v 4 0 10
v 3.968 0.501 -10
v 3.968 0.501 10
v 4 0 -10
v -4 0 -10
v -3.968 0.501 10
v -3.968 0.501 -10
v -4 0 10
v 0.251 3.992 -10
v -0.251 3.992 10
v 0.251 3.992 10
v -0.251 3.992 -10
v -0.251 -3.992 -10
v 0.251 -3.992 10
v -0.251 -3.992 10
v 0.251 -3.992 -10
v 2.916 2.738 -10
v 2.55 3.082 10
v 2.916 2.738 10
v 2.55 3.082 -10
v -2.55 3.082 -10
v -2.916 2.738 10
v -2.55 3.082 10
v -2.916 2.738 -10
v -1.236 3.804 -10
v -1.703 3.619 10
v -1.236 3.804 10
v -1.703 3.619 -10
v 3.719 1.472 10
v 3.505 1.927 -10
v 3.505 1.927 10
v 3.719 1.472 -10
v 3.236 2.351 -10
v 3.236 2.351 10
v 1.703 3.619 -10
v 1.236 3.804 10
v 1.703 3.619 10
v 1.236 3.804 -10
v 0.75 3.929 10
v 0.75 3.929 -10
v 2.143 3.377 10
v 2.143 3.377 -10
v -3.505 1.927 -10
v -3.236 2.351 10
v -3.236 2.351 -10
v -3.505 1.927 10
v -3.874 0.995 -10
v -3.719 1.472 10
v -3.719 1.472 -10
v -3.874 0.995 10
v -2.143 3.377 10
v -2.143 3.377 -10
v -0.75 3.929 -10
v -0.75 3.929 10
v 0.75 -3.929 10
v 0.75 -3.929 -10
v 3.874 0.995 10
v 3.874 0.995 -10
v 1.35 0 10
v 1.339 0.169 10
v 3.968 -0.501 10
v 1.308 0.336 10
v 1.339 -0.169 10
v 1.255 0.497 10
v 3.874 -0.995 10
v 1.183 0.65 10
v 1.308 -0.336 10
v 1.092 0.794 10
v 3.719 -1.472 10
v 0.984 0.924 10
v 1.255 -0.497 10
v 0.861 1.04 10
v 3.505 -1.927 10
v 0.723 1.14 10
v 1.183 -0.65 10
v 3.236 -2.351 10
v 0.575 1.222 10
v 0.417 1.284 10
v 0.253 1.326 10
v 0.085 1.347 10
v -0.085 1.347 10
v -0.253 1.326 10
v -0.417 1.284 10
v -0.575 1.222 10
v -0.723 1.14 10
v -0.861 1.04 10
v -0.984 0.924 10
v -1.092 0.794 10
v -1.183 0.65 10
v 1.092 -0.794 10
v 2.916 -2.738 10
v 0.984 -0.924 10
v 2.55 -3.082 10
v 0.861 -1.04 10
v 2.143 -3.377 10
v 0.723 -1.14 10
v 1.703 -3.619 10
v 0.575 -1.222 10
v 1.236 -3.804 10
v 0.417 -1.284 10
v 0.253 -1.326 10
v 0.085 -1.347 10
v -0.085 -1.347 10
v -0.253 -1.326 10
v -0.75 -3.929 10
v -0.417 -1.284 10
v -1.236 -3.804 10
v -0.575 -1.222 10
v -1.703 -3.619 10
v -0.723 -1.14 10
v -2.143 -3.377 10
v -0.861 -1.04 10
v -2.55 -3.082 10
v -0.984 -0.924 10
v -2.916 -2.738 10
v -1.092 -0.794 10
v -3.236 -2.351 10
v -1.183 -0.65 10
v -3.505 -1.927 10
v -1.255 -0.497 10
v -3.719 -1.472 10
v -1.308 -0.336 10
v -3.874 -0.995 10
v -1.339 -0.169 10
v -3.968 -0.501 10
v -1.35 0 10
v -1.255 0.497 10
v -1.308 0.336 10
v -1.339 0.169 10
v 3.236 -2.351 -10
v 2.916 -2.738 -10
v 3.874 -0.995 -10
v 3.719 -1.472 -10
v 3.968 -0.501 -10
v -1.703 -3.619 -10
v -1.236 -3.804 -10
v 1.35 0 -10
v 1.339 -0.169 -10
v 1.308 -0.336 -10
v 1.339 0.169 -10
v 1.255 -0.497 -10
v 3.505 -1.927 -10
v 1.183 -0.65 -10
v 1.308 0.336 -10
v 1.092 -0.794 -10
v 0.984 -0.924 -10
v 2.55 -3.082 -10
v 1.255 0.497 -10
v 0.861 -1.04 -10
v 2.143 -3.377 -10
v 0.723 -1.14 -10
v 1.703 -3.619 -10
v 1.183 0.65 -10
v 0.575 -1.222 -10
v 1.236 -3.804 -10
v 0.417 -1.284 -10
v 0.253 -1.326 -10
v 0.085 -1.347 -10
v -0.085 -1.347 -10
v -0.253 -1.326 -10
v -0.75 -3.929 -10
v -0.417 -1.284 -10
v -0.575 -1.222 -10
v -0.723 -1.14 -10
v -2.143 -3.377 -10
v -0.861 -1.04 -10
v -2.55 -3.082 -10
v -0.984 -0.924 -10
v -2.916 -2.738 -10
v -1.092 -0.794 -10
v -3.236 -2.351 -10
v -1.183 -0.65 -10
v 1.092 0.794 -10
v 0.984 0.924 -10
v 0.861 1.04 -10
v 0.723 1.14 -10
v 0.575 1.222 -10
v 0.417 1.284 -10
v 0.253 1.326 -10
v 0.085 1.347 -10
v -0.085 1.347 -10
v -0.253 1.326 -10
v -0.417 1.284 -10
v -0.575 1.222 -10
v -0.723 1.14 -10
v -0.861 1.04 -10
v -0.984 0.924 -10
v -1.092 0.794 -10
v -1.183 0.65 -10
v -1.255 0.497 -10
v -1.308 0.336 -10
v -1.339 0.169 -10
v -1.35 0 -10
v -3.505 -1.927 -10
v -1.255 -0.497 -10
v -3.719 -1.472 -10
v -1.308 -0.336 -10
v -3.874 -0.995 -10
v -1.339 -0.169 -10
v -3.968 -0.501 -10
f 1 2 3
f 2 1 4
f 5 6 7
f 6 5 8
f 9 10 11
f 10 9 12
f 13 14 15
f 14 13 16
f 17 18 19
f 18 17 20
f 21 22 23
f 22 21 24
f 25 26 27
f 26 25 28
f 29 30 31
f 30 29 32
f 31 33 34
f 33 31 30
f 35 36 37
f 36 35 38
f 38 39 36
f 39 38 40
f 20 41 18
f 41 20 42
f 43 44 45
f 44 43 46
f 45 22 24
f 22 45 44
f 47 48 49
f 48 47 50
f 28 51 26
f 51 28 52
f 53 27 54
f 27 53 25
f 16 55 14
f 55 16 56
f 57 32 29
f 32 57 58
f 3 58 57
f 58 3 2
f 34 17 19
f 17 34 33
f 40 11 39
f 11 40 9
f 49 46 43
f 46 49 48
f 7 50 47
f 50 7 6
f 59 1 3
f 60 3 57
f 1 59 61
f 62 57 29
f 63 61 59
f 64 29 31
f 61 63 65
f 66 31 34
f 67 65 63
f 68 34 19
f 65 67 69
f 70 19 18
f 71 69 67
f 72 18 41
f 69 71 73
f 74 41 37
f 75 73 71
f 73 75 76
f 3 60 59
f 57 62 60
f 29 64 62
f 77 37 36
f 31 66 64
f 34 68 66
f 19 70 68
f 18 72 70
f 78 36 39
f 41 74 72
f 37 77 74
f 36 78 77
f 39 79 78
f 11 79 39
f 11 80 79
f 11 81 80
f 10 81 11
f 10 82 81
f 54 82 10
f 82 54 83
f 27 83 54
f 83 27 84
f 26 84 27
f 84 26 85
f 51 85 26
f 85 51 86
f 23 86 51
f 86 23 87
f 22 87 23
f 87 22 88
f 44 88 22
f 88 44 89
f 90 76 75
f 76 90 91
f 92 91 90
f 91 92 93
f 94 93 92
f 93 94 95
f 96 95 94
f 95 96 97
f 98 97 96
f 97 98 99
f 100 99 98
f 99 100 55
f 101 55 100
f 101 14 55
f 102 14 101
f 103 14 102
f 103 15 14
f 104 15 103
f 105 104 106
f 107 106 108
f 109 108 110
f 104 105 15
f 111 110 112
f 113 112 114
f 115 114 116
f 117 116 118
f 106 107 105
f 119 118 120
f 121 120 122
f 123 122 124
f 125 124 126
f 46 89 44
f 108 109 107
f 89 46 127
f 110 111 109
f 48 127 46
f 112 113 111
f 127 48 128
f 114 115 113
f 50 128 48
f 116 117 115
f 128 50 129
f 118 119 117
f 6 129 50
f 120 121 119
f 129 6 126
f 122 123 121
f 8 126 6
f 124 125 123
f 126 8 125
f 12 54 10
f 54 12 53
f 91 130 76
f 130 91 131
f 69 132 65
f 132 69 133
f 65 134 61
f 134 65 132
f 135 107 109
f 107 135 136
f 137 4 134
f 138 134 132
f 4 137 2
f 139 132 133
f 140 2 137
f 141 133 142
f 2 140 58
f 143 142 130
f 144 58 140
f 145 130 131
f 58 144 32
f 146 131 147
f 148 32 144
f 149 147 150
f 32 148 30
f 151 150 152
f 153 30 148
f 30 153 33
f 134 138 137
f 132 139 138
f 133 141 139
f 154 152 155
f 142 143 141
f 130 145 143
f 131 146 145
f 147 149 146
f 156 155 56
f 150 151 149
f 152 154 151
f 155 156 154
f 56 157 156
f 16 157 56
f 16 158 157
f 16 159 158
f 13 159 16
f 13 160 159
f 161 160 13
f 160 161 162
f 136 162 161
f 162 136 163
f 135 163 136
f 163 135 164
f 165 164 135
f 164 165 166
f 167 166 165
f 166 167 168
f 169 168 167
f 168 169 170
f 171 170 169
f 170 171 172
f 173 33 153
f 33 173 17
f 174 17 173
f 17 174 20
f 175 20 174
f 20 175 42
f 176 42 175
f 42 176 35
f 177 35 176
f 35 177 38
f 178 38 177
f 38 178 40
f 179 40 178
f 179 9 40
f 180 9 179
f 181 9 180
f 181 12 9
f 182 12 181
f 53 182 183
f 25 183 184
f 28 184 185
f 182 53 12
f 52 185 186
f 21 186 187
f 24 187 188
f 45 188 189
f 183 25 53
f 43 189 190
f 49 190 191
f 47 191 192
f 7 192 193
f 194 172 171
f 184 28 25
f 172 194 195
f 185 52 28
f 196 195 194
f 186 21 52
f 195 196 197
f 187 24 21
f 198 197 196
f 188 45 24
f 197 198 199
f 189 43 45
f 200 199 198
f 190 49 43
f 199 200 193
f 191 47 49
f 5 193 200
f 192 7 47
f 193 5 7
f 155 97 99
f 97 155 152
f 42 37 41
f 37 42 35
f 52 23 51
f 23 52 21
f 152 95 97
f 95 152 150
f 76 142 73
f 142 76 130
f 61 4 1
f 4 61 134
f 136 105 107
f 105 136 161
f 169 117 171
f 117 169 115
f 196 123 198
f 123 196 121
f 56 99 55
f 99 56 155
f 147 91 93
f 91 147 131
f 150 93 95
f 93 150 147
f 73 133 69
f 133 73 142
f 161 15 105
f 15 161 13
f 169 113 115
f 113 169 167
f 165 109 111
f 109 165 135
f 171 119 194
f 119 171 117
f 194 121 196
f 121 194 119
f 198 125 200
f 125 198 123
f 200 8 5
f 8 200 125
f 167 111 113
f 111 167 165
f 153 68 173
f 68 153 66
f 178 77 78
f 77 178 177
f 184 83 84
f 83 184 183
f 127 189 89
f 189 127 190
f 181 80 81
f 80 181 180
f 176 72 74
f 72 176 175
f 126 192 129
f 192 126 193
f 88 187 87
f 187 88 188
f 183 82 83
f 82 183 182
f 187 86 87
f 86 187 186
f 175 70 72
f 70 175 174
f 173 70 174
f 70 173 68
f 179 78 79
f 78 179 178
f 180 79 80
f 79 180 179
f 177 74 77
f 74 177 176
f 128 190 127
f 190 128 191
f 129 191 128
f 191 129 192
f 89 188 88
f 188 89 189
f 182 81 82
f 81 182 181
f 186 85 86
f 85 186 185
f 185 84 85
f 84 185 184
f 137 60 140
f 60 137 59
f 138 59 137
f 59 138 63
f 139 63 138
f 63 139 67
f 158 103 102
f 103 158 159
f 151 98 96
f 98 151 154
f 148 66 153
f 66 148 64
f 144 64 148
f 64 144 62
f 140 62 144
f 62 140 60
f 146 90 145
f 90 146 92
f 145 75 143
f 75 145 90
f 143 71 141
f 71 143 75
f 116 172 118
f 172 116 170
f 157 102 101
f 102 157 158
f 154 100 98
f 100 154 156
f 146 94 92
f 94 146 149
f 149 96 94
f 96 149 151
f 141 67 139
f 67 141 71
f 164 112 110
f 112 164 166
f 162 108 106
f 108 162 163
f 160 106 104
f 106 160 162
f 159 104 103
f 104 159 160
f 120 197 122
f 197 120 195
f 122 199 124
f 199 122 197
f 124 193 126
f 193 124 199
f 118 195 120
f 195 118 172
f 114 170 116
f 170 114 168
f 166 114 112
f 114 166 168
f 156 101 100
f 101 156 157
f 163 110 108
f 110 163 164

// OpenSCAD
$fn = 50;


difference() {
	union() {
		translate(v = [0, 0, -10.0000000000]) {
			cylinder(h = 20, r = 4.0000000000);
		}
	}
	union() {
		translate(v = [0, 0, -100.0000000000]) {
			cylinder(h = 200, r = 1.3500000000);
		}
	}
}
